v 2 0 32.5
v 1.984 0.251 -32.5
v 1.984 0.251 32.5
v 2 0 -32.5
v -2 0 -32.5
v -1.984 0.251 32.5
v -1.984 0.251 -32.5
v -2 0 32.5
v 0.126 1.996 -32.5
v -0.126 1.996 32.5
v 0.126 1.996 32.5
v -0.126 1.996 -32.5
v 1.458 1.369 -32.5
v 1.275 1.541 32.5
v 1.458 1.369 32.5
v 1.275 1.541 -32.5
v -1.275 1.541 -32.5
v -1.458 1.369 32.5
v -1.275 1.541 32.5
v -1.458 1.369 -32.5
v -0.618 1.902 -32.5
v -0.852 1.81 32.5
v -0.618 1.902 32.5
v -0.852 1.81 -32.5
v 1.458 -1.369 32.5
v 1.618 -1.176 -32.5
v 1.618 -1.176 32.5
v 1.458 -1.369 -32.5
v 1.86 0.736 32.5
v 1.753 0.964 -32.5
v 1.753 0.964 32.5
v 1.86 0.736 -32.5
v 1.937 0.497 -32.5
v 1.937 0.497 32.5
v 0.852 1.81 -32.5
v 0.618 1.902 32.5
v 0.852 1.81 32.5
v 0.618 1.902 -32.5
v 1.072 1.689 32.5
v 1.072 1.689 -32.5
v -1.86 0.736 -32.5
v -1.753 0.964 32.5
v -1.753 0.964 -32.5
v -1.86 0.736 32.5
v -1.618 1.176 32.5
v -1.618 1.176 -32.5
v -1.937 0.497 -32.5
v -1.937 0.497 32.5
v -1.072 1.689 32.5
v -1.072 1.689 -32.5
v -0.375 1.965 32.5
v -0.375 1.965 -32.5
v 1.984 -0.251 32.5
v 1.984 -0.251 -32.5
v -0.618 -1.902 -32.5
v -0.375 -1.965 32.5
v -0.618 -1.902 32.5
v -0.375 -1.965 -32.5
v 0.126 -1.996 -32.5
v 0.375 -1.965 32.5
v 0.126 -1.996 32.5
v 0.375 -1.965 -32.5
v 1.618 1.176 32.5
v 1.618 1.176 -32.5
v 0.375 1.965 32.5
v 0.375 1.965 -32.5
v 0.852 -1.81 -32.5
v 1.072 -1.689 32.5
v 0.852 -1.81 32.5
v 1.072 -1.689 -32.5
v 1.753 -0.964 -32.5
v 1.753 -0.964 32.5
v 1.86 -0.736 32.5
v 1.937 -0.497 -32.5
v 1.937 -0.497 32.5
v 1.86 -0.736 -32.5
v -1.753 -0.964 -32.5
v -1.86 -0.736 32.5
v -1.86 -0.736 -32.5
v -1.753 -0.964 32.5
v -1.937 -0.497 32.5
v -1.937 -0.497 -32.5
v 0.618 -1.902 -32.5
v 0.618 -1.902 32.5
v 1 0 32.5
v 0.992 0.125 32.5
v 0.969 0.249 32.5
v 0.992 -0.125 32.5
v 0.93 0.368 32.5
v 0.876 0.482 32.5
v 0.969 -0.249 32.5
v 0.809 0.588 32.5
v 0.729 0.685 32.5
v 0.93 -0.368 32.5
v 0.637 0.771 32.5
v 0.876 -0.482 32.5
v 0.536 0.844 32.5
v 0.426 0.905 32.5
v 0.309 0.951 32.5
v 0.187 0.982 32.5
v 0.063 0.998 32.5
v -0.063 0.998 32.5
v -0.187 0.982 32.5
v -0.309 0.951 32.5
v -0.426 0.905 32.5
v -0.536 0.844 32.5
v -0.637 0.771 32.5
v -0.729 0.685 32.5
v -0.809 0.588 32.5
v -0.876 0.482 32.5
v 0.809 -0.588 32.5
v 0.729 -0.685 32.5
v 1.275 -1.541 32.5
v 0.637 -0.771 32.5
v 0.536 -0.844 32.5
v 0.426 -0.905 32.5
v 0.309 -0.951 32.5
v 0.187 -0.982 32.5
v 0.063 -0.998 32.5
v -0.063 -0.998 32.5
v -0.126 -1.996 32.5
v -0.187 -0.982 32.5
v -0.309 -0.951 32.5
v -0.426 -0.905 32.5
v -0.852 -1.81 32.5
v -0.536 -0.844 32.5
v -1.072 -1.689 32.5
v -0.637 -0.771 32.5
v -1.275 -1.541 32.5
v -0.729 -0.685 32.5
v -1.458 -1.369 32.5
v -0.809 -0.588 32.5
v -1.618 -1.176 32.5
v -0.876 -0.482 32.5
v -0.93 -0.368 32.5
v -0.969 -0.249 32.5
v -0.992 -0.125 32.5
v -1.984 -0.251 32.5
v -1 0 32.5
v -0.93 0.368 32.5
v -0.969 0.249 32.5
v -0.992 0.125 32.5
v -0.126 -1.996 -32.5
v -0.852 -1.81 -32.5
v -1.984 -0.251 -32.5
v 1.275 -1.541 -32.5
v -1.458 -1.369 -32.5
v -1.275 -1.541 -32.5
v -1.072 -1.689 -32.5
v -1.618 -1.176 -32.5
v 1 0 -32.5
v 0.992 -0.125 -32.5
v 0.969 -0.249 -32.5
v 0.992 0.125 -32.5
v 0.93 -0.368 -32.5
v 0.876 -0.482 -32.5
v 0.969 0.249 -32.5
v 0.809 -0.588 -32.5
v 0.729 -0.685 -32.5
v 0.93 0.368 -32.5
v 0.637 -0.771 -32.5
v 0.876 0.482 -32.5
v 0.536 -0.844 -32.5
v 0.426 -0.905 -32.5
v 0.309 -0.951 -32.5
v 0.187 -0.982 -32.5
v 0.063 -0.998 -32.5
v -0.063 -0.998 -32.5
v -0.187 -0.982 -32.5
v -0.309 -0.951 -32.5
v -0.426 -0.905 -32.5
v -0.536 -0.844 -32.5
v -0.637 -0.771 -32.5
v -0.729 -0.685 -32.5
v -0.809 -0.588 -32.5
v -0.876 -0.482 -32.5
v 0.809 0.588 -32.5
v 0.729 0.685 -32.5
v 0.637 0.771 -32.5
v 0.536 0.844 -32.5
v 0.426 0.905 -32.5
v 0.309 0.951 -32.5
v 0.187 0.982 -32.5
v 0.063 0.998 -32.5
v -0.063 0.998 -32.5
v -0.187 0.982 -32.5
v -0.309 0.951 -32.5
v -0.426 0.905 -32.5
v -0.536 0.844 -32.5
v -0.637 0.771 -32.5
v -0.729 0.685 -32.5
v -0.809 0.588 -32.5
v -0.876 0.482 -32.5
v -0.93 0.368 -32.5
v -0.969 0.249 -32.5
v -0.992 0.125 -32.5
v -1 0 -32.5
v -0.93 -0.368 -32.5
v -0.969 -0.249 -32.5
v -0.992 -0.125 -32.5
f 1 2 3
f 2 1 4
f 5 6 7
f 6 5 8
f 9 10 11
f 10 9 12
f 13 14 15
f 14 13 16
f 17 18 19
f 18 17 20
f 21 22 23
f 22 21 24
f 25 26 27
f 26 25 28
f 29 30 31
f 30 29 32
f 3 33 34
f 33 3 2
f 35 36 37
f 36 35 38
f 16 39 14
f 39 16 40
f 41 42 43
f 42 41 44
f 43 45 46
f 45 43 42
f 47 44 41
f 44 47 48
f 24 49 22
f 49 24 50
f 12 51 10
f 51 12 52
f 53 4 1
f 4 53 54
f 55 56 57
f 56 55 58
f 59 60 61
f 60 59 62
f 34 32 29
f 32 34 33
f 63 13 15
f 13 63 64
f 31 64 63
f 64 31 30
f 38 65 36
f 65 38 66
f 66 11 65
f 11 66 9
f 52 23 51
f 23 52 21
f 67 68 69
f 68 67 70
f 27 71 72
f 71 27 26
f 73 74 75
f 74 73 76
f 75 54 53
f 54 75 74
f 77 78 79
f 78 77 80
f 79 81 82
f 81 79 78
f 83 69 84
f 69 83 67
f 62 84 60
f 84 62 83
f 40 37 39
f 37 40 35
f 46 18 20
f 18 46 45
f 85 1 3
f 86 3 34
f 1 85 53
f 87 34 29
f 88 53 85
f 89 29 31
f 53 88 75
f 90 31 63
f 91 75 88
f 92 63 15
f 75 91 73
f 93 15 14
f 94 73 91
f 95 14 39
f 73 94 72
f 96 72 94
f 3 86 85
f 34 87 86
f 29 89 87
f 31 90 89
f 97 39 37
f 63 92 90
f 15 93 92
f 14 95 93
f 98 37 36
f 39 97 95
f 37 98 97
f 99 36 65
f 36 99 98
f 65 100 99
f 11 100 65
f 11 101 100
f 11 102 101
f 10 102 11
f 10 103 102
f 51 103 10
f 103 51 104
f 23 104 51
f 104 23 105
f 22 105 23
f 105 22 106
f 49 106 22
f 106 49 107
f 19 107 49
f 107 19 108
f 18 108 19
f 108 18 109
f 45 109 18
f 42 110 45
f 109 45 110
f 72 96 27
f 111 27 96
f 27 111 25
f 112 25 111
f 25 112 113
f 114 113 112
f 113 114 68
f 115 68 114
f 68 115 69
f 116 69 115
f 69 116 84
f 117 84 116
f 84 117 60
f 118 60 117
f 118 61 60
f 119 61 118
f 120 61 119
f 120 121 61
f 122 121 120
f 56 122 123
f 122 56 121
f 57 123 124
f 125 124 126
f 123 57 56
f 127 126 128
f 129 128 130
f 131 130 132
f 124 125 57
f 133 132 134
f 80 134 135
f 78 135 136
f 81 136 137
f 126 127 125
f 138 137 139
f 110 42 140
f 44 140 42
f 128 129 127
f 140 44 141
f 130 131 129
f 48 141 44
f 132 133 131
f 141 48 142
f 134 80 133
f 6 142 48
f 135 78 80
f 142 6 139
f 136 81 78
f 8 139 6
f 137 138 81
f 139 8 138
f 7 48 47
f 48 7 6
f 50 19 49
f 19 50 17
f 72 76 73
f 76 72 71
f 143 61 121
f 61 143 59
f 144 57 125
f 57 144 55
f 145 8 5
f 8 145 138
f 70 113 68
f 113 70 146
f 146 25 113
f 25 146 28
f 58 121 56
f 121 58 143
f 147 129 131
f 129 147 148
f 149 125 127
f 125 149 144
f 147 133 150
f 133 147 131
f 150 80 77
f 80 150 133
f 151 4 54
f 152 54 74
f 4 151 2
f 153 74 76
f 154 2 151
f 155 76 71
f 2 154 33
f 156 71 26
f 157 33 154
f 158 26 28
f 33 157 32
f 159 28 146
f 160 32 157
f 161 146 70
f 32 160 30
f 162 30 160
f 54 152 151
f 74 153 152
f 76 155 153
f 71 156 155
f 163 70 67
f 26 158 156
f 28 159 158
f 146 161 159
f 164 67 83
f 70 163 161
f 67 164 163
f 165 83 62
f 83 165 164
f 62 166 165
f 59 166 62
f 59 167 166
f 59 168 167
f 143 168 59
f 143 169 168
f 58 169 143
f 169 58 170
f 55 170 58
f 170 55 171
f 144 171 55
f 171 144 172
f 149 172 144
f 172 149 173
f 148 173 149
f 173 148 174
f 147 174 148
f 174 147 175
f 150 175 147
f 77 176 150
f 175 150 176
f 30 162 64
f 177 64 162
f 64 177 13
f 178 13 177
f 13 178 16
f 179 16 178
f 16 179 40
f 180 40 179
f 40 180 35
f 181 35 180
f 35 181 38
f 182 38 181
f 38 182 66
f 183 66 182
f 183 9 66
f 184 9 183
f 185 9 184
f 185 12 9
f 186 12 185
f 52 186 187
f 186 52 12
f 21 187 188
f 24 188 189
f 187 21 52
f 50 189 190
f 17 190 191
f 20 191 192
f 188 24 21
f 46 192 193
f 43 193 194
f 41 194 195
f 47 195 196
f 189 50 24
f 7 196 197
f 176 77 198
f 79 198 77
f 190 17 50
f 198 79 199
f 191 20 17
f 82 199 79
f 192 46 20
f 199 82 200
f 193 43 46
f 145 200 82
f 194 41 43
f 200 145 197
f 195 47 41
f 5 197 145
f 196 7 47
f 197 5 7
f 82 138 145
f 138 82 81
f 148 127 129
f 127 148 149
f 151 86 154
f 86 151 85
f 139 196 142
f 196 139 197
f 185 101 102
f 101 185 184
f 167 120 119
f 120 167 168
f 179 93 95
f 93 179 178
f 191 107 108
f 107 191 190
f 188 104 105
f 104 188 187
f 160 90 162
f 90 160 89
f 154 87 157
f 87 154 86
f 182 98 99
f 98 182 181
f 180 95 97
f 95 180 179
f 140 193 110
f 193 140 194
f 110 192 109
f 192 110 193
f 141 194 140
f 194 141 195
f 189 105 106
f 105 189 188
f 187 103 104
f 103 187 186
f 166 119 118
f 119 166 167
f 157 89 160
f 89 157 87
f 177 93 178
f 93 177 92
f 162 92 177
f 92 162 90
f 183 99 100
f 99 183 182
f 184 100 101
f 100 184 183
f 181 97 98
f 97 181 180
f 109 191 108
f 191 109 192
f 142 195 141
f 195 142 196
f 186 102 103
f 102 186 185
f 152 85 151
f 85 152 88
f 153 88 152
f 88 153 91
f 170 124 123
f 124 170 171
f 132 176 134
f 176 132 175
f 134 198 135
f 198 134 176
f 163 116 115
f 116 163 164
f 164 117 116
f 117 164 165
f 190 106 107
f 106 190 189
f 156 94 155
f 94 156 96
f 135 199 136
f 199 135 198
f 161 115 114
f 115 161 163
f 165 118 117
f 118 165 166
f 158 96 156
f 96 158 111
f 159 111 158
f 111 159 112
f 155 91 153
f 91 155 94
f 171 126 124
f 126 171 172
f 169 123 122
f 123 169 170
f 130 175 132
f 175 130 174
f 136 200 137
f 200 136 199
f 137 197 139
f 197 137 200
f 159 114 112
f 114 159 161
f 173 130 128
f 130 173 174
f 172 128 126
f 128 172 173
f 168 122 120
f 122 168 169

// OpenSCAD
$fn = 50;


difference() {
	union() {
		translate(v = [0, 0, -32.5000000000]) {
			cylinder(h = 65, r = 2.0000000000);
		}
	}
	union() {
		translate(v = [0, 0, -100.0000000000]) {
			cylinder(h = 200, r = 1.0000000000);
		}
	}
}
